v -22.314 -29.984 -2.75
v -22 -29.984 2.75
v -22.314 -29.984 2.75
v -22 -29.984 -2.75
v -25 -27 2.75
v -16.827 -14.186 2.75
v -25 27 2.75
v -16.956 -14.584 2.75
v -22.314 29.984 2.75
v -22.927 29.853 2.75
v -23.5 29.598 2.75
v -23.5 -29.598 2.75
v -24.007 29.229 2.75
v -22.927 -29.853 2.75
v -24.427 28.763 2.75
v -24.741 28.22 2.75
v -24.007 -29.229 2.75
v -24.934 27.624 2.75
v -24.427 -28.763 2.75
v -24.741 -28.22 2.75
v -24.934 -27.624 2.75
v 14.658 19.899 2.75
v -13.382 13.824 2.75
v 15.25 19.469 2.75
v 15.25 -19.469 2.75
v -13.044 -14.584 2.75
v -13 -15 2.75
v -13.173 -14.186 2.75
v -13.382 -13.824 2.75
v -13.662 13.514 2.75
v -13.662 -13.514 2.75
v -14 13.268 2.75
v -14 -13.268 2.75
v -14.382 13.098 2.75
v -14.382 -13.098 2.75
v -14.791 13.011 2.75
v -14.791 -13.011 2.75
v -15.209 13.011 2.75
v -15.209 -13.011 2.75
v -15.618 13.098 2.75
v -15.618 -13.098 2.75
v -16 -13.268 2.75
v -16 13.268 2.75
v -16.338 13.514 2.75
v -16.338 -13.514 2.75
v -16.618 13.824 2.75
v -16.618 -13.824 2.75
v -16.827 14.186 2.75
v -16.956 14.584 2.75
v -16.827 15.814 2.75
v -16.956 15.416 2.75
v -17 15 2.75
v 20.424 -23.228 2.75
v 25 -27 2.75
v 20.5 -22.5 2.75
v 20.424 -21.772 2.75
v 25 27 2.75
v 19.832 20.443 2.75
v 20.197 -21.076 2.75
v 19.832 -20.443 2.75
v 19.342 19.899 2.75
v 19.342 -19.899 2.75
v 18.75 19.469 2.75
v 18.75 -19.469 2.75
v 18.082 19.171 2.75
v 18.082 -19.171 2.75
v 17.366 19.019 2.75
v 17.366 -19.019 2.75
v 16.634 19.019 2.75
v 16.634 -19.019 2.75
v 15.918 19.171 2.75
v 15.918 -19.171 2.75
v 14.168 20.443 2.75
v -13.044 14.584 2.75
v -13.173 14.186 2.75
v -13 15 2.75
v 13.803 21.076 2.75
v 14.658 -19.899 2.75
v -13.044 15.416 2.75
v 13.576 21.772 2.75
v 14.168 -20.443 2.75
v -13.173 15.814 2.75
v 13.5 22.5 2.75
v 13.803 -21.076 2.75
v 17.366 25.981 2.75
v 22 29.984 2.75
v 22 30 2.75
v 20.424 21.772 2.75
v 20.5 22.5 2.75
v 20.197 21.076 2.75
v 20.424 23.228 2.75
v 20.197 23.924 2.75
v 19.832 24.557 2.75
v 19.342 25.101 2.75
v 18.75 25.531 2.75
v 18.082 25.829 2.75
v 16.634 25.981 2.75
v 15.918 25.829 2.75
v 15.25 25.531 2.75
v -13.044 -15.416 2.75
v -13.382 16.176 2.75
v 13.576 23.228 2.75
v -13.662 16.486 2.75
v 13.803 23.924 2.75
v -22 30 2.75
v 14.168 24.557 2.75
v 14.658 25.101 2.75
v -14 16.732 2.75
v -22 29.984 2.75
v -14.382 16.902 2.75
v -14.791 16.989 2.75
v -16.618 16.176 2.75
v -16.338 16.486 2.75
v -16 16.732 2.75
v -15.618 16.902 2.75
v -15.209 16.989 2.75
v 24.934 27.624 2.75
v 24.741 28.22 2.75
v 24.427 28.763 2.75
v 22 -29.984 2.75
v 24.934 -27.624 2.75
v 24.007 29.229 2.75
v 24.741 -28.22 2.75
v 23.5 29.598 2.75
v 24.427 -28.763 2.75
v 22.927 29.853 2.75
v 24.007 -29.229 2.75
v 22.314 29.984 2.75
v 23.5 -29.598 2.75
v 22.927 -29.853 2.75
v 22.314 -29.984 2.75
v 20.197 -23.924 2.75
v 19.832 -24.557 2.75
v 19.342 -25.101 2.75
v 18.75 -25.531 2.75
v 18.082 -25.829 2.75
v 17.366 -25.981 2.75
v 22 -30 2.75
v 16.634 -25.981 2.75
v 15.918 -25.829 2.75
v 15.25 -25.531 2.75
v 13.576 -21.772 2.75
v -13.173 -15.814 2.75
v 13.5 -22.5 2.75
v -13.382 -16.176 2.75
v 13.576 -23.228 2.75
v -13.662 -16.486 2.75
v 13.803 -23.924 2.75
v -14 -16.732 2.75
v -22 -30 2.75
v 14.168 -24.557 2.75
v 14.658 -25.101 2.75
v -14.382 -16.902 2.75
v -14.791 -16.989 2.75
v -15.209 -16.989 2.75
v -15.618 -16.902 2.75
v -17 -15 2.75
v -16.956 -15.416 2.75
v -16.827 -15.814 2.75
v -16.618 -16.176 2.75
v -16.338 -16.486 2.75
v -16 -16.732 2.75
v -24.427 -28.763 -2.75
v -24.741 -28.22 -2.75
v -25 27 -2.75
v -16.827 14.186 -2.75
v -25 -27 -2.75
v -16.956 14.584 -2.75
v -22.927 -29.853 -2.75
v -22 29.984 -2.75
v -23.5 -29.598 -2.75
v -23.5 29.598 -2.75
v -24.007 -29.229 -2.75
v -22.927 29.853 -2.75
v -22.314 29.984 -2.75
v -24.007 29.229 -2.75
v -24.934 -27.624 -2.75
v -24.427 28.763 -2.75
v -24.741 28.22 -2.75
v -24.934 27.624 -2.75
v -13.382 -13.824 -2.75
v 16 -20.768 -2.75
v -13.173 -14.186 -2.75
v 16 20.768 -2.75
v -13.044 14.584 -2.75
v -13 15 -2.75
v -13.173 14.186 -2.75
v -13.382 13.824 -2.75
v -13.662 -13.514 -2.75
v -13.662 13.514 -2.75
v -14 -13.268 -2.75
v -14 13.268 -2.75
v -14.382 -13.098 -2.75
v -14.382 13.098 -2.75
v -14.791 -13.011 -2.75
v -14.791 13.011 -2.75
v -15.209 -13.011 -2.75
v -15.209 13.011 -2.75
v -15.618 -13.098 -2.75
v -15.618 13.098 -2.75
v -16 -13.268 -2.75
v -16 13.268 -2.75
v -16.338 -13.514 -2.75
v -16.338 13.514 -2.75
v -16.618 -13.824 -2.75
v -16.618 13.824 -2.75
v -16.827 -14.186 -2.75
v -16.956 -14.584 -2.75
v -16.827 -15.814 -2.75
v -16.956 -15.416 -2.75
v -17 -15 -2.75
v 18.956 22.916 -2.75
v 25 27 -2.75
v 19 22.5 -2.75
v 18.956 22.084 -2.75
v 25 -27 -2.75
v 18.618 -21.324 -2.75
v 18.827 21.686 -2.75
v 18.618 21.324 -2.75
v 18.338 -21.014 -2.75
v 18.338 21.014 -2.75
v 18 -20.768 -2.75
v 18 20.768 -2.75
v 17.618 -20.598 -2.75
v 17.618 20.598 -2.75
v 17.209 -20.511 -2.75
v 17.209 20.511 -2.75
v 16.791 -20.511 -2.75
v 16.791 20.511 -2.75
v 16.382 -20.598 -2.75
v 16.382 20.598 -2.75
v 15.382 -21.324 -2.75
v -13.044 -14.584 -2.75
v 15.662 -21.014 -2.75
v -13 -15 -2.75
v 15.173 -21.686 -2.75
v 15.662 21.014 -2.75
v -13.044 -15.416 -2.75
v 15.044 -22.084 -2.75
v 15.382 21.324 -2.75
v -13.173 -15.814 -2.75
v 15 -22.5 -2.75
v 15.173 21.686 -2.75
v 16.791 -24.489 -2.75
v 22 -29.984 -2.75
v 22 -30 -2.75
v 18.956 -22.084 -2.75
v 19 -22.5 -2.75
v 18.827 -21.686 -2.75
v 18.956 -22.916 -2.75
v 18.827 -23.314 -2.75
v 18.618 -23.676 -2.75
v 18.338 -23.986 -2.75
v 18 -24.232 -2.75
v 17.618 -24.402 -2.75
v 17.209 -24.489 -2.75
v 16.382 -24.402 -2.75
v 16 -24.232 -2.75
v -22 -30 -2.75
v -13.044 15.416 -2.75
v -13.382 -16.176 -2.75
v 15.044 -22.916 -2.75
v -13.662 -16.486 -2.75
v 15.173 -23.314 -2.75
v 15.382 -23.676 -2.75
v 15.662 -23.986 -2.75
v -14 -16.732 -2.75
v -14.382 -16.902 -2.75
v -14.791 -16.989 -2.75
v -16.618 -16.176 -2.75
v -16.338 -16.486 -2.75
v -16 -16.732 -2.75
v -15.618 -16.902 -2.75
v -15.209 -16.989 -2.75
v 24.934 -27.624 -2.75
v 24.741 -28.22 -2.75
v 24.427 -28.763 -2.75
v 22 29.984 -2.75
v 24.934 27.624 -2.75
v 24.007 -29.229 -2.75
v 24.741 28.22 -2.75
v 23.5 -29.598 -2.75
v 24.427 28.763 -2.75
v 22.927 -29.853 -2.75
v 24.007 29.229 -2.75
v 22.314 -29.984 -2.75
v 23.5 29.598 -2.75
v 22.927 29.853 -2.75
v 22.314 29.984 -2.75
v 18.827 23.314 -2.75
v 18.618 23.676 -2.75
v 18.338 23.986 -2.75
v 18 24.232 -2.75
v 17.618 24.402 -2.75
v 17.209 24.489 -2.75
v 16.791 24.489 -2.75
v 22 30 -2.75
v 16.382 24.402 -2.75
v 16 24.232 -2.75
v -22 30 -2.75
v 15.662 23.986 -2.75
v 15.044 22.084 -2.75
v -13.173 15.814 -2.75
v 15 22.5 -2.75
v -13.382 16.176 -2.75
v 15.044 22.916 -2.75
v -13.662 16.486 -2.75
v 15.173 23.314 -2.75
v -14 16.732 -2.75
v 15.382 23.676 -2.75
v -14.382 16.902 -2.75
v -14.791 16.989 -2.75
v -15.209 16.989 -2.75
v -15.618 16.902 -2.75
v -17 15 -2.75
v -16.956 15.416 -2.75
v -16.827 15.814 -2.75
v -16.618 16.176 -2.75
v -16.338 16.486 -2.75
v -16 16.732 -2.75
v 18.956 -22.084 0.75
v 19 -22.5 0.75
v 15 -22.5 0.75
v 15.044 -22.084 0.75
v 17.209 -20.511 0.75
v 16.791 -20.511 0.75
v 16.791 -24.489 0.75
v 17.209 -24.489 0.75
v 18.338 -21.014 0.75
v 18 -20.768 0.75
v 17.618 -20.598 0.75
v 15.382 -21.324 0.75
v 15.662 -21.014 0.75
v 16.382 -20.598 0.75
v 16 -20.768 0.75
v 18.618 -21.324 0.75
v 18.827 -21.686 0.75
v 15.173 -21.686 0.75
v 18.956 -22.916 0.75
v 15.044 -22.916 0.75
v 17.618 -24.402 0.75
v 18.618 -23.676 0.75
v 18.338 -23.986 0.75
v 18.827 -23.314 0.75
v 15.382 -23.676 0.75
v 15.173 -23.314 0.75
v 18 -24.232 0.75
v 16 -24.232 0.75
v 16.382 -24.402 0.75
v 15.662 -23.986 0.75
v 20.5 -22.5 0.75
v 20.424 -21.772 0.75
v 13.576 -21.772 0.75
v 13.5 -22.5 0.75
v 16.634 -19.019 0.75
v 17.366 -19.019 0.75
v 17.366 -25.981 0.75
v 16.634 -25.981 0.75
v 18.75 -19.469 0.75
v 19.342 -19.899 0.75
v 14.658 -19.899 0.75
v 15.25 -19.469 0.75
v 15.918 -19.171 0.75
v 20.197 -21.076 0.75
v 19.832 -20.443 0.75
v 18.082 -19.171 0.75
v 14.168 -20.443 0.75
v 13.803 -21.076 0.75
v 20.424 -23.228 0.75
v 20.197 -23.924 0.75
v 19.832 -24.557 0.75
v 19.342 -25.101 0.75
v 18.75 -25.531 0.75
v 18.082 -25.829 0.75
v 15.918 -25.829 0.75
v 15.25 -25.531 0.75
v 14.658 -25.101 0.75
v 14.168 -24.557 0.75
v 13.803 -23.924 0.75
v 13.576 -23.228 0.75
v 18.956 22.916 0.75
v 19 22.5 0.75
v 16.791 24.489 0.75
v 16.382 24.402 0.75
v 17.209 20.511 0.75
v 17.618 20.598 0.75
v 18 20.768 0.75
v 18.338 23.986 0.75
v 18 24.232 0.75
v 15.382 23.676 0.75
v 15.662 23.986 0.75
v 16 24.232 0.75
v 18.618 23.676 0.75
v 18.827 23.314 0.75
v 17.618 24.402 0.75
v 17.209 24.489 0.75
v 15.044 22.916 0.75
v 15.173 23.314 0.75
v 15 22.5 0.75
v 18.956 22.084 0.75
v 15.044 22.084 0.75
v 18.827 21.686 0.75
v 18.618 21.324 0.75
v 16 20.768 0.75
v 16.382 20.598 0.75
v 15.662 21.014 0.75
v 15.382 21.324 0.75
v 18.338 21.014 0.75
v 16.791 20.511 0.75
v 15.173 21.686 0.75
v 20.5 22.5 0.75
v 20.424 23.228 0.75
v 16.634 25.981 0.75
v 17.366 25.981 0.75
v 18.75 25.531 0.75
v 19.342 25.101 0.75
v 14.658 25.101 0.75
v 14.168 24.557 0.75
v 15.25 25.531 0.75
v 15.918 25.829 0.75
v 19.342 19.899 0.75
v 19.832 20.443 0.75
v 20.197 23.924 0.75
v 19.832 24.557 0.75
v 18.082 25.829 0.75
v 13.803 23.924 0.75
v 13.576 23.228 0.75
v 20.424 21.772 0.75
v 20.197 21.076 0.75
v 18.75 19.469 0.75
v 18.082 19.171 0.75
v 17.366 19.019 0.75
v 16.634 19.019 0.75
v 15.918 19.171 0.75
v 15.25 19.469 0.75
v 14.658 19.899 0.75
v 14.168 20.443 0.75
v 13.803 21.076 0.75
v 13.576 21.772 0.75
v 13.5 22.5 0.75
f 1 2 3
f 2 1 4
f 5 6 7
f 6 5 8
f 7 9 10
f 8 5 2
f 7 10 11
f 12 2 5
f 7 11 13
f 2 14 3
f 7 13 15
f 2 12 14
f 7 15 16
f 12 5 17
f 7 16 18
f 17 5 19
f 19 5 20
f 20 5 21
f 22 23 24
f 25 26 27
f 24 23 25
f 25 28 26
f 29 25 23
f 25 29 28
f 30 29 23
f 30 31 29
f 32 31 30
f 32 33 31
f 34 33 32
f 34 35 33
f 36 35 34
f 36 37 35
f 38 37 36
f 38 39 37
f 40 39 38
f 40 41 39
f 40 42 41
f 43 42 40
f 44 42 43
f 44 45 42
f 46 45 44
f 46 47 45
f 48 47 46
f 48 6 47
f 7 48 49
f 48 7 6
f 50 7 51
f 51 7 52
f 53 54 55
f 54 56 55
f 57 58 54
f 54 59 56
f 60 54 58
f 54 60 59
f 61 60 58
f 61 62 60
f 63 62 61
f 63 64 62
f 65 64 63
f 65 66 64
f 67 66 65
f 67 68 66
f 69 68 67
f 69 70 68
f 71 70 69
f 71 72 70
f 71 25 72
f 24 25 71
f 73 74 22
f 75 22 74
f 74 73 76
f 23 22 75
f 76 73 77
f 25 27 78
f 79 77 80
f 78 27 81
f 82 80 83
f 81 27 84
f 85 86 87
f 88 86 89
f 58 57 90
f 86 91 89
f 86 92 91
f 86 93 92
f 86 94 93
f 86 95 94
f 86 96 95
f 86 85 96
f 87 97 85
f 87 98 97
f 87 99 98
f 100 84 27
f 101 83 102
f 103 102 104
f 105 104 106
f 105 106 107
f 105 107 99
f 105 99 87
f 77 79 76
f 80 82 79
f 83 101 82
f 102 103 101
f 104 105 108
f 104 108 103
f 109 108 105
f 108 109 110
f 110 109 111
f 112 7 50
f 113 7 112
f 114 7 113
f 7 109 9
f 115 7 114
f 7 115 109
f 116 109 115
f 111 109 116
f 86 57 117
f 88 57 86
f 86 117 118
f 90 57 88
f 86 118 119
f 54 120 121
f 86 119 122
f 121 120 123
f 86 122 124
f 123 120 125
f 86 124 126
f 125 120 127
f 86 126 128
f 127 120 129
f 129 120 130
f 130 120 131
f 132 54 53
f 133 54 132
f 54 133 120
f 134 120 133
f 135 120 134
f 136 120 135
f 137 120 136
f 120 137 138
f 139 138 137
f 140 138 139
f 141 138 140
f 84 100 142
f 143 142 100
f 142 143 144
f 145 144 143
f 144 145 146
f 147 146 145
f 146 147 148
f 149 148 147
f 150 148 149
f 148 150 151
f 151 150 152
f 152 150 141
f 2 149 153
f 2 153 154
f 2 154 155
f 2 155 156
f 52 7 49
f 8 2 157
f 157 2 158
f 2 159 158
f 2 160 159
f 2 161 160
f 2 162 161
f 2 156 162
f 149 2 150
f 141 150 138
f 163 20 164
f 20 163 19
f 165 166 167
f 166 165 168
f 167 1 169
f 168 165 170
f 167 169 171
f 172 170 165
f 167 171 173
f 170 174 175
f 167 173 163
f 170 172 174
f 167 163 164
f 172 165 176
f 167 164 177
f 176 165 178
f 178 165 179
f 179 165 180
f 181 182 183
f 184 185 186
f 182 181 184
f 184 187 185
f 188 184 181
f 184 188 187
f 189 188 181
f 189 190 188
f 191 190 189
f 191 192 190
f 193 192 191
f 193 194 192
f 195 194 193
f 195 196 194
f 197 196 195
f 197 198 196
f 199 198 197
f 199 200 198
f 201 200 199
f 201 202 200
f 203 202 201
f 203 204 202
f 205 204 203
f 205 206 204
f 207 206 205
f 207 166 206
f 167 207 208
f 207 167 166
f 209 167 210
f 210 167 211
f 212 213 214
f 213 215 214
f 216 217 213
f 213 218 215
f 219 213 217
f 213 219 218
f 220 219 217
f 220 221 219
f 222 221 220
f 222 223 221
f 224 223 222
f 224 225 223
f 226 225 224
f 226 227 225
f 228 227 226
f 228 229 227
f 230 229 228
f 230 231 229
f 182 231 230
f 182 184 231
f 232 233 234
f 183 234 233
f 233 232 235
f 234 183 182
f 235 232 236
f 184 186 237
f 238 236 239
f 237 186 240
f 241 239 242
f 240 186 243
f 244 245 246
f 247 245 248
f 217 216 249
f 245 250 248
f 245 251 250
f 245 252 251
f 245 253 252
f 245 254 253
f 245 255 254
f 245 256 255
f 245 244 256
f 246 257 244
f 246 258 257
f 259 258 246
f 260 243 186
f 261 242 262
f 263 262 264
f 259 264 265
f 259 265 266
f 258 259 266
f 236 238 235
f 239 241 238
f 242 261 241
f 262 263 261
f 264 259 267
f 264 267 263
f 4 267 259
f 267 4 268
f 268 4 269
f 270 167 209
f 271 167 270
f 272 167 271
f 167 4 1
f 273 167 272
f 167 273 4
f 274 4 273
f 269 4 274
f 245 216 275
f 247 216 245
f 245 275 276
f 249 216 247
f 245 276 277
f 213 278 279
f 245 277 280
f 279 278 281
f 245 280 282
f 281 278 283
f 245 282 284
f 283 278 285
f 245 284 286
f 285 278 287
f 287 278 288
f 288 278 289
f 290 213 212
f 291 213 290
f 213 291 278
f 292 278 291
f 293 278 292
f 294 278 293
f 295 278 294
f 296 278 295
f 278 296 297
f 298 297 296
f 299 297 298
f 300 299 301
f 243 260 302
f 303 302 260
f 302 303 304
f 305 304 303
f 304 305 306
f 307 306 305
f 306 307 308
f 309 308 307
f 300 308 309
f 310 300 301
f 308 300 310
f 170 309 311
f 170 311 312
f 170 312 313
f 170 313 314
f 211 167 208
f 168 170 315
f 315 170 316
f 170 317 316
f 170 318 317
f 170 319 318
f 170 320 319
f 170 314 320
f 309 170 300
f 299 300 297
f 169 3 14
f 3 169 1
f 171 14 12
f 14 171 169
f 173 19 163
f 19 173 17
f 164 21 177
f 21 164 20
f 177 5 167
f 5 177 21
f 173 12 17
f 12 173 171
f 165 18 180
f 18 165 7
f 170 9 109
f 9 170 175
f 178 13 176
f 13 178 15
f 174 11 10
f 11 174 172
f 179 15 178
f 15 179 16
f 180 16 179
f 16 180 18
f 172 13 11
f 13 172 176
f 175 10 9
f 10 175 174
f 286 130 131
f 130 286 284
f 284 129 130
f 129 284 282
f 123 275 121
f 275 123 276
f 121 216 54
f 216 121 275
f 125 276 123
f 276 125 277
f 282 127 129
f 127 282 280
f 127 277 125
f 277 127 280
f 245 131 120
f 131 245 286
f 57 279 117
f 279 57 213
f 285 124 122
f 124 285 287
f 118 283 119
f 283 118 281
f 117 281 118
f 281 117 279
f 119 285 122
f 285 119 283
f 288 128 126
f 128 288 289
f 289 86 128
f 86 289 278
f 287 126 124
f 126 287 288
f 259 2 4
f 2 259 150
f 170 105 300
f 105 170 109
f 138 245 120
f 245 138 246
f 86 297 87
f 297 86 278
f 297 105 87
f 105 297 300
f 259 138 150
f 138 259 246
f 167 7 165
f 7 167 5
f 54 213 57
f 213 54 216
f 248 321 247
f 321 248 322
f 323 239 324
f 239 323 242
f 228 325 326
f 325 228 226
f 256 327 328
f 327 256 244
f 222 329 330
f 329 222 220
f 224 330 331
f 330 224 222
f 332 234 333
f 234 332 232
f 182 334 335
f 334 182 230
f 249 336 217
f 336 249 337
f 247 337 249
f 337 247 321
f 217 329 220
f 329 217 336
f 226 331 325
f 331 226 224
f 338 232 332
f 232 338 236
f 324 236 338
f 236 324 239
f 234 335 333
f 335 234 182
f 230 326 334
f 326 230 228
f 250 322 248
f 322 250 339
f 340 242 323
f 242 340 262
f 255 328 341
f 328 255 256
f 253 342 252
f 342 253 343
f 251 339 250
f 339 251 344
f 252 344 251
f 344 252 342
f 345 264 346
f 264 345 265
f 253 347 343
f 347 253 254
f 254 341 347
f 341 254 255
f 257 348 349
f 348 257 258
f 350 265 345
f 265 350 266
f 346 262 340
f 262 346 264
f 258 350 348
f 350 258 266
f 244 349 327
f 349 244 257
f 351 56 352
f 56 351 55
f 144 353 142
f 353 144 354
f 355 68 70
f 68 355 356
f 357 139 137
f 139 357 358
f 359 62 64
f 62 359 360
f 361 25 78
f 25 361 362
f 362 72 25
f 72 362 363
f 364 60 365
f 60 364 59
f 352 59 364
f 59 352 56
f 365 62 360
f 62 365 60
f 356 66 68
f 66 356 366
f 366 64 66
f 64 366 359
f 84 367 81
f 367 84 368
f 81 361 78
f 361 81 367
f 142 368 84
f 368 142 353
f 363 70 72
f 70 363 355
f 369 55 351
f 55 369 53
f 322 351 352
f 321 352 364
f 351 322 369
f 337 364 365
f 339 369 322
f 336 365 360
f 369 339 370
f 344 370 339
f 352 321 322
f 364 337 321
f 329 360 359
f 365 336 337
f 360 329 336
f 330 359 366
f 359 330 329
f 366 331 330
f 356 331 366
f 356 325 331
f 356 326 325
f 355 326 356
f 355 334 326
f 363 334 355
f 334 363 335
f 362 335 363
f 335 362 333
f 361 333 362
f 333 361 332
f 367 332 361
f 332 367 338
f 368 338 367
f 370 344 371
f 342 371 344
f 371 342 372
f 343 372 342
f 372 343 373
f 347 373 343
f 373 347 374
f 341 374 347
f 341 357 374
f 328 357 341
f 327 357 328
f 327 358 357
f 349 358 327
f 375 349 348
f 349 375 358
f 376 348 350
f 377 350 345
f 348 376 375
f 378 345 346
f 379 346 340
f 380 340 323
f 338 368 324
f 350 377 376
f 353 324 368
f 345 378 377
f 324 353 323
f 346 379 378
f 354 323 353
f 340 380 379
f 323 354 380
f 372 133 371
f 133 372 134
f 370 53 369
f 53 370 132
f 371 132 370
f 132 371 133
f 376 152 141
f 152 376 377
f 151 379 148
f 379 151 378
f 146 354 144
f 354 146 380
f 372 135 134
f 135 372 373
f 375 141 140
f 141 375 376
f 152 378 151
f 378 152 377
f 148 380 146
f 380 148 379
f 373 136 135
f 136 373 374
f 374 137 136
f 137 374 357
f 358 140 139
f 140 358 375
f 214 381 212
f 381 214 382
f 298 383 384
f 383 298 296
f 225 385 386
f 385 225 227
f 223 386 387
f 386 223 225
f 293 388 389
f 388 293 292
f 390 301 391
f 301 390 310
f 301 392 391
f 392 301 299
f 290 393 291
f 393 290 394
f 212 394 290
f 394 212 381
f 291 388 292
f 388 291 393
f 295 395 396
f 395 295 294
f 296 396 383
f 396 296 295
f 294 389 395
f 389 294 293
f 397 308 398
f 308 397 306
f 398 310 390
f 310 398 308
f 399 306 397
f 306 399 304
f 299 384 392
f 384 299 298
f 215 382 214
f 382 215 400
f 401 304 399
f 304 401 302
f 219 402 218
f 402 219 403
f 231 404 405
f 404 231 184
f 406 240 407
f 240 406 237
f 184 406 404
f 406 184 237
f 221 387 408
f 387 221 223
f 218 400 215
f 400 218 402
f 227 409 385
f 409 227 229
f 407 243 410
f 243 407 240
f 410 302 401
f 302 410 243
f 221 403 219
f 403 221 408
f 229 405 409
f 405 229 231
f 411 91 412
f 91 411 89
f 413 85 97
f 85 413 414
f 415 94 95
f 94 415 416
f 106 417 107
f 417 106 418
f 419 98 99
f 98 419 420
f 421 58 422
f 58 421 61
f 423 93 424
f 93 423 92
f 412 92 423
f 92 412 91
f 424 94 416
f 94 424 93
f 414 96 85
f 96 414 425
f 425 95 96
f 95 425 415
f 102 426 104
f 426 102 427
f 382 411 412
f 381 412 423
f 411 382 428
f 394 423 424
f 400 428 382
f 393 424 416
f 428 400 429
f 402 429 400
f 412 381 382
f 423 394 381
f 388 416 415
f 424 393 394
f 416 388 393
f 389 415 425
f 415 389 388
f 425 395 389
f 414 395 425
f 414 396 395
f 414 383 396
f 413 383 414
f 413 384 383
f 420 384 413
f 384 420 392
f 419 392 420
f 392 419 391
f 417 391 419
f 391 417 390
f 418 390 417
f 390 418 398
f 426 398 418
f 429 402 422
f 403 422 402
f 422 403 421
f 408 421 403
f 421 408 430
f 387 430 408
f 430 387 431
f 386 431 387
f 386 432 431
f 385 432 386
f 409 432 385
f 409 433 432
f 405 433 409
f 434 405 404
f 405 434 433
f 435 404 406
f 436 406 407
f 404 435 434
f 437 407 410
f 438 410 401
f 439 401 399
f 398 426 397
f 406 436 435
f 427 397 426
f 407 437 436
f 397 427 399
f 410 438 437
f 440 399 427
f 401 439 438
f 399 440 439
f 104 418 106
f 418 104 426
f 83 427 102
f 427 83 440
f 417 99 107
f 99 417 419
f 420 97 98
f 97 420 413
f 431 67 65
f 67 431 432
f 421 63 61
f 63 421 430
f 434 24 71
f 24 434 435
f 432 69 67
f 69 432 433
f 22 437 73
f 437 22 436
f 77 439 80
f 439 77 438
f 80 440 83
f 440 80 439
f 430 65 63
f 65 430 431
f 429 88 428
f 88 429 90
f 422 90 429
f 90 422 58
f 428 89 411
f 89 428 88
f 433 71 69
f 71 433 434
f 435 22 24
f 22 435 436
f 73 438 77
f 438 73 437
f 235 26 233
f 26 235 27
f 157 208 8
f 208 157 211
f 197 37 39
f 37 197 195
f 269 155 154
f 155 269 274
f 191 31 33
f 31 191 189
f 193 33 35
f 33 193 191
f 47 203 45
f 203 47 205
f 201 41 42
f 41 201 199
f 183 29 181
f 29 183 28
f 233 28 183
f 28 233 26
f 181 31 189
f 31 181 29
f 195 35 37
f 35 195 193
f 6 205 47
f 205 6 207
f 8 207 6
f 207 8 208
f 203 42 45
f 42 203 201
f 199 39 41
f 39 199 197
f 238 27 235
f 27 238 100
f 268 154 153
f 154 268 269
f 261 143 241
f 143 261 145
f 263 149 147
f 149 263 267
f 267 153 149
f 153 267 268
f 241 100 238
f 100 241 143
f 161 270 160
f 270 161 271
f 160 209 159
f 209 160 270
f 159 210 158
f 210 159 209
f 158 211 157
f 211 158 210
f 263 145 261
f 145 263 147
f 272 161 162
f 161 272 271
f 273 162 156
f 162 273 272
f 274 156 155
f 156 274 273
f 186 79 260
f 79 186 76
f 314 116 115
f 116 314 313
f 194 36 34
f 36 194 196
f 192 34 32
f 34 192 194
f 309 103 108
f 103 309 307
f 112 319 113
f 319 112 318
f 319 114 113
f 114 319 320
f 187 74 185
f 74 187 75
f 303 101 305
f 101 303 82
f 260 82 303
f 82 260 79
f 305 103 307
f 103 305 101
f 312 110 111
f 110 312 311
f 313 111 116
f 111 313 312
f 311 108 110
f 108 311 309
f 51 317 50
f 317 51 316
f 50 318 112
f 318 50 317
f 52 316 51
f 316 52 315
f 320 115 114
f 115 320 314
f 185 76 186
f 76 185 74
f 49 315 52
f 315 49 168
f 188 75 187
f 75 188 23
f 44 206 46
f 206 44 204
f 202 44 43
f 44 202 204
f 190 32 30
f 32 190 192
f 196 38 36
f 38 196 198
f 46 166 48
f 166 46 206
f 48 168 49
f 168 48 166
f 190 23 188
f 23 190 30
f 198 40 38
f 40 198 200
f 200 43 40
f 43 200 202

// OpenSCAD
// kossel 2020 (bowden) extruder mount - mounts to motor attached to extruder such as Airtripper's Bowden Extruder

use <MCAD/boxes.scad>;

$fn=30;

screw_diameter = 4;
screw_head = 7;
screw_head_height = 2;
width = 50;
height = 60;
extrusion_mounting_hole_sep = 45;
motor_mount_hole_sep = 30;
thickness = 5.5;

difference(){
    roundedBox([width,height,thickness],3,true);

    translate([17,0,0]) for(y=[-1,1]){
        translate([0,extrusion_mounting_hole_sep/2*y,0]) cylinder(h=thickness+1,d=screw_diameter,center=true);
        // screw head indent
        translate([0,extrusion_mounting_hole_sep/2*y,thickness/2-screw_head_height]) cylinder(h=20,d=screw_head);
    }
    
    translate([-15,0,0]) for(y=[-1,1]){
        translate([0,motor_mount_hole_sep/2*y,0]) cylinder(h=thickness+1,d=screw_diameter,center=true);
    }
}
